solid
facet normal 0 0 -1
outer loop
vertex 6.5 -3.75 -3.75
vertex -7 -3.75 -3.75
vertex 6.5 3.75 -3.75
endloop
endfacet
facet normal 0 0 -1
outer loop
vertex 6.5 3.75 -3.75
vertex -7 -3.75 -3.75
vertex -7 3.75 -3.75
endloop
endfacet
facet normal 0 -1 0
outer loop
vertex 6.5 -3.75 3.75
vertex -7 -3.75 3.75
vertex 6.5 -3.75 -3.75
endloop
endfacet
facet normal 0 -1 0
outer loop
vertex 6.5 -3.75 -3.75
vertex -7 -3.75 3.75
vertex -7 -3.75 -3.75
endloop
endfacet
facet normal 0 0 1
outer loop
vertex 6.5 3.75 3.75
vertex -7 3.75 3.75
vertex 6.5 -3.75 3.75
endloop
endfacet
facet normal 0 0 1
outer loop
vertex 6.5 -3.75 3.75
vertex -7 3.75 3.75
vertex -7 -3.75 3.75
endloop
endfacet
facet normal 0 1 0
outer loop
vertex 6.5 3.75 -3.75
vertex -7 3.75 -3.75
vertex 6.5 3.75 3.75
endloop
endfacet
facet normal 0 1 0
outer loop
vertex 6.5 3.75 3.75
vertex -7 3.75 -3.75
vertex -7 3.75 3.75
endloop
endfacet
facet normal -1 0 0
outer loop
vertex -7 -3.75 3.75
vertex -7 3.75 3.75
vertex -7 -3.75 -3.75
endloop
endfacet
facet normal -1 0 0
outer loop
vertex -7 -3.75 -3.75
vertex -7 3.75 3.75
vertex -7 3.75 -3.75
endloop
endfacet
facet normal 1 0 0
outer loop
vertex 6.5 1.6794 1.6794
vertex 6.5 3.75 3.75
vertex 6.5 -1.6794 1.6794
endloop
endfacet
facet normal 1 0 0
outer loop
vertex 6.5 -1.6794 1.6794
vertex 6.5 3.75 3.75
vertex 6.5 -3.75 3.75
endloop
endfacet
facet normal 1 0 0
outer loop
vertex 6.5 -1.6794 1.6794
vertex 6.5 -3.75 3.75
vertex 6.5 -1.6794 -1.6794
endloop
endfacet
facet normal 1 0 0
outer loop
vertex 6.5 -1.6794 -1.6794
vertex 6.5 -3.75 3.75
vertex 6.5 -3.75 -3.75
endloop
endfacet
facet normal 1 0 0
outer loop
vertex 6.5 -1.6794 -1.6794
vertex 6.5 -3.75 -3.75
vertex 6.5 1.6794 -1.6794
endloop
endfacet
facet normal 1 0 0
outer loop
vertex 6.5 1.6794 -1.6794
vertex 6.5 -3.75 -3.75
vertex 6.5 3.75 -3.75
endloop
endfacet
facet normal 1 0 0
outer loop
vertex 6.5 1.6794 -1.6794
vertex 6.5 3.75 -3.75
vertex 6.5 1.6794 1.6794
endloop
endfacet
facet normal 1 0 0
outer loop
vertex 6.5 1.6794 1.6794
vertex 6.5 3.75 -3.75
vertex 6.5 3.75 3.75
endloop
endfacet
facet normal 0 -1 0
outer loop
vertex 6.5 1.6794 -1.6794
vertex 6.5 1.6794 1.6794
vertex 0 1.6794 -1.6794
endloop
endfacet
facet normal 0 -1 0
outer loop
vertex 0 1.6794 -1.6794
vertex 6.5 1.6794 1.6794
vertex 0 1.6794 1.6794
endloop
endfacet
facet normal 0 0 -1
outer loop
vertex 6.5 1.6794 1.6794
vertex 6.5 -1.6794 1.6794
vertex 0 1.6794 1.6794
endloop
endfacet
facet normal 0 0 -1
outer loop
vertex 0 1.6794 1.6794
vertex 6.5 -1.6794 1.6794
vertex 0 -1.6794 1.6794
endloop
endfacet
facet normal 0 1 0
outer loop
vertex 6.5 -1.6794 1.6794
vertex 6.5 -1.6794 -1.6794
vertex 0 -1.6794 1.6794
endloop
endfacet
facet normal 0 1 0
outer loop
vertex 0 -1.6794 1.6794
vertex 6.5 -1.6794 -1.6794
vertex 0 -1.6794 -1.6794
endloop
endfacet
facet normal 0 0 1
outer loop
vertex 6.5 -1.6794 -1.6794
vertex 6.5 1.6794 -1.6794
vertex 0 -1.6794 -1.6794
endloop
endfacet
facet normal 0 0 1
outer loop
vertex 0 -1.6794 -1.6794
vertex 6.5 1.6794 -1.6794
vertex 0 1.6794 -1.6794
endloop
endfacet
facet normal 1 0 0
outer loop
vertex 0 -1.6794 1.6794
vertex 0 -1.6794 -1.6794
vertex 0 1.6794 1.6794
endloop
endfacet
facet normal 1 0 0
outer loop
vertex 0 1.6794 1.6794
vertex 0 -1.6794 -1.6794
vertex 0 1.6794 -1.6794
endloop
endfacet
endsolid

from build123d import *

# Parameters (mm, degrees)
CROQUIS1_W              = 7.5
CROQUIS1_H              = 7.5
SALIENTE_EXTRUIR1_DEPTH = 7
CROQUIS1_3_W            = 7.5
CROQUIS1_3_H            = 7.5
CROQUIS1_3_W_2          = 3.35875721
CROQUIS1_3_H_2          = 3.35875721
SALIENTE_EXTRUIR2_DEPTH = 6.5


with BuildPart() as part:
    # Croquis1 → Saliente-Extruir1 (new body)
    with BuildSketch(Plane.YZ):
        Rectangle(CROQUIS1_W, CROQUIS1_H)
    extrude(amount=-SALIENTE_EXTRUIR1_DEPTH)

    # Croquis1<3> → Saliente-Extruir2 (add)
    with BuildSketch(Plane.YZ):
        Rectangle(CROQUIS1_3_W, CROQUIS1_3_H)
        Rectangle(CROQUIS1_3_W_2, CROQUIS1_3_H_2, mode=Mode.SUBTRACT)
    extrude(amount=SALIENTE_EXTRUIR2_DEPTH)


solid = part.part
